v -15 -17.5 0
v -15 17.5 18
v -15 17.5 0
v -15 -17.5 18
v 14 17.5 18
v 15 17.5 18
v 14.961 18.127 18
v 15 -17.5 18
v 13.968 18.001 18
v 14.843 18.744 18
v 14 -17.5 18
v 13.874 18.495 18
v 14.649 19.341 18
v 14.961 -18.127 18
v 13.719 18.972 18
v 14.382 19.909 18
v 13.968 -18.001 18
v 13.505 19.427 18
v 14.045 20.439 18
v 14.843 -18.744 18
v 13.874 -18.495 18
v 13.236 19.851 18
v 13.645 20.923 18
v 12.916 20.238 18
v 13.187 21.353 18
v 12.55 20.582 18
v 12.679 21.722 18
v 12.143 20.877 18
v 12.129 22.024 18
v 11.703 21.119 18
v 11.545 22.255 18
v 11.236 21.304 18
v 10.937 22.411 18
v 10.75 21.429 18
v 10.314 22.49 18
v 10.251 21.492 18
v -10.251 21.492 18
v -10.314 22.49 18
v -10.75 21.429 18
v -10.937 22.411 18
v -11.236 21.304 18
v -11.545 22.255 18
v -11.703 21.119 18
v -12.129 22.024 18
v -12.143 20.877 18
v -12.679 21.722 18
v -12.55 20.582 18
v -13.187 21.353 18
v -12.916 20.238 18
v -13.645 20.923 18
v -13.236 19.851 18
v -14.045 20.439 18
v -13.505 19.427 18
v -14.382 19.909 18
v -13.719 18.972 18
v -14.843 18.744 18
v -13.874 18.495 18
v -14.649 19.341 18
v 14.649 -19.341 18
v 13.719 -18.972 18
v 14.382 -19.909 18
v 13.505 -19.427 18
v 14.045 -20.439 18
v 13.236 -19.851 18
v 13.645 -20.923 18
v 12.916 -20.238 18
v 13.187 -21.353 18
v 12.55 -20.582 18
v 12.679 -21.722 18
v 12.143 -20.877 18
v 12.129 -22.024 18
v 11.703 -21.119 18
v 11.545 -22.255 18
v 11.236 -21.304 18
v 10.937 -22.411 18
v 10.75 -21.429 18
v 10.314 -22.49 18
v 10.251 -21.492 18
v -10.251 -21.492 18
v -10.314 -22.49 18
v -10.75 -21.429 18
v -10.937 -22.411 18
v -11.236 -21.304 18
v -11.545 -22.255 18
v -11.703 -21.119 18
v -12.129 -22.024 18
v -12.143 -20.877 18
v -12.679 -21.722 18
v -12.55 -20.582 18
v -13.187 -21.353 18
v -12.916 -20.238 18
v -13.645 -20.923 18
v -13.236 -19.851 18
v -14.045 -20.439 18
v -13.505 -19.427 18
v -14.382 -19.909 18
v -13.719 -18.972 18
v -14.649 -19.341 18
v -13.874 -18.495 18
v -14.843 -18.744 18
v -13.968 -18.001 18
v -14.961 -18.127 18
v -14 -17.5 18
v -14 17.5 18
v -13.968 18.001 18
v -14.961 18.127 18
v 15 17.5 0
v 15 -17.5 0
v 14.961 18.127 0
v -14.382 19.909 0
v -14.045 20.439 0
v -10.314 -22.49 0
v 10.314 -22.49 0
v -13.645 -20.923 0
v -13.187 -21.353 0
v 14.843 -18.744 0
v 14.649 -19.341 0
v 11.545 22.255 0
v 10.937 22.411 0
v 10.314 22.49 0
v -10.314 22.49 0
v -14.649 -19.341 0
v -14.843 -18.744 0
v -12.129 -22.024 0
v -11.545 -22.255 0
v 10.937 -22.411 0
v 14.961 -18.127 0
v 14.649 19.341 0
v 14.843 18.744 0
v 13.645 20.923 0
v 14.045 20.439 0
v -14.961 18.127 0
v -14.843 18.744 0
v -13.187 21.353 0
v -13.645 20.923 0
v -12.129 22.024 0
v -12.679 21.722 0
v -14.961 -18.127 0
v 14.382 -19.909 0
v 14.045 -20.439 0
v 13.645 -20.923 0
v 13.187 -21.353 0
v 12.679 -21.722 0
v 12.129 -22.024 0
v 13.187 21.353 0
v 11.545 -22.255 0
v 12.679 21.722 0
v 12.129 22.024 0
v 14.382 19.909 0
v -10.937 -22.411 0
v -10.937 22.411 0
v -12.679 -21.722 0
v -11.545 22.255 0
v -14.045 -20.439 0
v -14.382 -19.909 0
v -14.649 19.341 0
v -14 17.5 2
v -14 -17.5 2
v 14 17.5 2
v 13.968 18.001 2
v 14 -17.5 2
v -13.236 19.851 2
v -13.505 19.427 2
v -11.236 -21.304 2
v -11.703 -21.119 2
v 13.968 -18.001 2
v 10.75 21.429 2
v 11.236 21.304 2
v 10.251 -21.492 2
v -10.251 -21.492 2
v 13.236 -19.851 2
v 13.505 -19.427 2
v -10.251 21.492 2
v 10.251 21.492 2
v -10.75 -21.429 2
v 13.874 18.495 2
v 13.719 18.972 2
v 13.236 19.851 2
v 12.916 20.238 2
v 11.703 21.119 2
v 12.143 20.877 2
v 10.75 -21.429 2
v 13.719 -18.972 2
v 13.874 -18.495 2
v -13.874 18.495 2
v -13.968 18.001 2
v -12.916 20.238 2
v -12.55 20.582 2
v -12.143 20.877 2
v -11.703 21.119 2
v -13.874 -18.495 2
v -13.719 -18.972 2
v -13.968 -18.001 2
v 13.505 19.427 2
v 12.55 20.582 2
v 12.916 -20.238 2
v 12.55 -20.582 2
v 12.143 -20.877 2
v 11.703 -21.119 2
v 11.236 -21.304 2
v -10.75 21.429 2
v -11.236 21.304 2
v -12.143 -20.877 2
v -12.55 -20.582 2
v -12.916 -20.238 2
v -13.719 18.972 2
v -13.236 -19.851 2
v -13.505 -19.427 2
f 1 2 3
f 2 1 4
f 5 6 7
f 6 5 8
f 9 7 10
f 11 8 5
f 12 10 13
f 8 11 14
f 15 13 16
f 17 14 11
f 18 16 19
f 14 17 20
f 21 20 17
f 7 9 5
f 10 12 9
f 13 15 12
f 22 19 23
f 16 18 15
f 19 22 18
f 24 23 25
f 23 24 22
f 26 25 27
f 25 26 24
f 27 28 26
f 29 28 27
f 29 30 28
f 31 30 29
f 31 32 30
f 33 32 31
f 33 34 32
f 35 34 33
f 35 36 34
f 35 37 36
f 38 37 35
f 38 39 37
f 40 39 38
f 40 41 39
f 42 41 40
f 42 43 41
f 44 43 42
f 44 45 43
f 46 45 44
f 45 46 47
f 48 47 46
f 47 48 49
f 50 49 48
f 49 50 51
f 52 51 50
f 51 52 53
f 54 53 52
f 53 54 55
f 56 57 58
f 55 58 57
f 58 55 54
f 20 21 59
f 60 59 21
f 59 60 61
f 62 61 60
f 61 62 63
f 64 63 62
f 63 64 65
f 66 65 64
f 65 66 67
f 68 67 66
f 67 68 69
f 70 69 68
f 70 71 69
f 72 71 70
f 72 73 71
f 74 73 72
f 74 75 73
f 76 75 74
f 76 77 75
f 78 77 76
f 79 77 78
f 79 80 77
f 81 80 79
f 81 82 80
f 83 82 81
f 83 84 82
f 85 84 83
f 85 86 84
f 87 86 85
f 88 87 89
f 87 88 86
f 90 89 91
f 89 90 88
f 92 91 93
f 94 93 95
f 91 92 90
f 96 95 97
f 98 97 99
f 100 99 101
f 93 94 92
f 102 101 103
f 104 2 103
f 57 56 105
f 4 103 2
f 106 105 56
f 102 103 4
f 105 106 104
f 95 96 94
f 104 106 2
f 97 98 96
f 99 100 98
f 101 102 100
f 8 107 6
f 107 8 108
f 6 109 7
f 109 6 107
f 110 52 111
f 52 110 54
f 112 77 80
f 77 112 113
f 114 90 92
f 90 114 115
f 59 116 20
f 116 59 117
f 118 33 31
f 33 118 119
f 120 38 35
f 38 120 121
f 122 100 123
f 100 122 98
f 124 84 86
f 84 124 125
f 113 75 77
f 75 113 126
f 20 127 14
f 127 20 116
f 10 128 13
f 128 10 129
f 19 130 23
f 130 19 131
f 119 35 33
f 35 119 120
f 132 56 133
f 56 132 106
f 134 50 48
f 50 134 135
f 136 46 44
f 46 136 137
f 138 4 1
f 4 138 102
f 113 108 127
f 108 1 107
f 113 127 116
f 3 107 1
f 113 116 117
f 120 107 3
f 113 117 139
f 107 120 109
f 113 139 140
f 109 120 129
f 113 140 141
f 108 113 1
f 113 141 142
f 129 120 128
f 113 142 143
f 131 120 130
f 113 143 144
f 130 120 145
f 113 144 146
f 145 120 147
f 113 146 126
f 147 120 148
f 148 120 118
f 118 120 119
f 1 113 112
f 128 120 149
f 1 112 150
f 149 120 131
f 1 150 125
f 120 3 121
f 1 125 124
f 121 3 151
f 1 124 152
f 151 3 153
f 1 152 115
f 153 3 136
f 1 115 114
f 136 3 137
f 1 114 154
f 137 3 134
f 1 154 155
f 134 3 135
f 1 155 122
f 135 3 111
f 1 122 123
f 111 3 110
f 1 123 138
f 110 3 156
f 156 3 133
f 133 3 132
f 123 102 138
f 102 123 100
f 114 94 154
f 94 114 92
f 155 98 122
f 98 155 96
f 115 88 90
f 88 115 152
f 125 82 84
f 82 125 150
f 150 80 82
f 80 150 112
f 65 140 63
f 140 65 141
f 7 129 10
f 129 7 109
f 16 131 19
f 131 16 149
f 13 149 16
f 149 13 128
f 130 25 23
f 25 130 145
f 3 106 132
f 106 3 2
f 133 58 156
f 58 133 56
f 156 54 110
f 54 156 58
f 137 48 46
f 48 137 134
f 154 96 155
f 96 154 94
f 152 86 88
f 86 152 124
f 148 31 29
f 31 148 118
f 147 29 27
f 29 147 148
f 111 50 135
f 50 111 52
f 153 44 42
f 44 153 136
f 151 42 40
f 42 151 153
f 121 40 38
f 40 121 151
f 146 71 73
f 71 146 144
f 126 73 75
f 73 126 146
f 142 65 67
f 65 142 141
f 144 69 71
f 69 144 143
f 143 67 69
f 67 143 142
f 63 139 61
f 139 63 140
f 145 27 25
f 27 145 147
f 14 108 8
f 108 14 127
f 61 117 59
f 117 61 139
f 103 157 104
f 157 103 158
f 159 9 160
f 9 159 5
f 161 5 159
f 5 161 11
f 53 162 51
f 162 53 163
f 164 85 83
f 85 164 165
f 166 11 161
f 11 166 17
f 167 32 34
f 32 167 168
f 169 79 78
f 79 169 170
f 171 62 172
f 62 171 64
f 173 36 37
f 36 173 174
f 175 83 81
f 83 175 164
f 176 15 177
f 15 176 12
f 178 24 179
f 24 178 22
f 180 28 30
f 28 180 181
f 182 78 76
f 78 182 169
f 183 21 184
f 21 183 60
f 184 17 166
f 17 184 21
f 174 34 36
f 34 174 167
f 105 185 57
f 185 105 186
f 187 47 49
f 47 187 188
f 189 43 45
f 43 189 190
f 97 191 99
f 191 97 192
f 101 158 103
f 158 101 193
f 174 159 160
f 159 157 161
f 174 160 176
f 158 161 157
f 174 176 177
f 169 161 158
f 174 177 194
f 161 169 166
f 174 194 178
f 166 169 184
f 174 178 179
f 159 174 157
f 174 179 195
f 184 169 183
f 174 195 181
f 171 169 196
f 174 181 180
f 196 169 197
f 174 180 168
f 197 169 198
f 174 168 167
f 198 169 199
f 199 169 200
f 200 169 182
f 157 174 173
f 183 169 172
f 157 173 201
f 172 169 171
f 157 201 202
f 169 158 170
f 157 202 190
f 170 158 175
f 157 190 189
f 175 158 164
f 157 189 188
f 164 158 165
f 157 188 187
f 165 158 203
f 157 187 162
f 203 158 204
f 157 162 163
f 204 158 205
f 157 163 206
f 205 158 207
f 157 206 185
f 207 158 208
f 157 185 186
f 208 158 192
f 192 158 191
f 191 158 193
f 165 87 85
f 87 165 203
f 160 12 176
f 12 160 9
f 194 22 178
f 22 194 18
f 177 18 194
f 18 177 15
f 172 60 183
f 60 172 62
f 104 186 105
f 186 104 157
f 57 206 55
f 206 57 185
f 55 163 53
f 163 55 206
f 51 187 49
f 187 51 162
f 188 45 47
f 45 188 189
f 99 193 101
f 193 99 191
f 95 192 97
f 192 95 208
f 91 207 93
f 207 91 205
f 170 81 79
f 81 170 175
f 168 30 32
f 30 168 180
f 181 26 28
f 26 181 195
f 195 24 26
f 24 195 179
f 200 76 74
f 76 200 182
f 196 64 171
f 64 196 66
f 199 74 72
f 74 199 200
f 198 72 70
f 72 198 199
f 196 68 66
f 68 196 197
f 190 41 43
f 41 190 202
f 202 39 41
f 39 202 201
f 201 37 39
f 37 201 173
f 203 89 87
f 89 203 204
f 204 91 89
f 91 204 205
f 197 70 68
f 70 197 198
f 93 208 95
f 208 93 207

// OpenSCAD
$fn = 50;


difference() {
	union() {
		hull() {
			translate(v = [-10.0000000000, 17.5000000000, 0]) {
				cylinder(h = 18, r = 5);
			}
			translate(v = [10.0000000000, 17.5000000000, 0]) {
				cylinder(h = 18, r = 5);
			}
			translate(v = [-10.0000000000, -17.5000000000, 0]) {
				cylinder(h = 18, r = 5);
			}
			translate(v = [10.0000000000, -17.5000000000, 0]) {
				cylinder(h = 18, r = 5);
			}
		}
	}
	union() {
		translate(v = [0, 0, 2]) {
			hull() {
				translate(v = [-10.0000000000, 17.5000000000, 0]) {
					cylinder(h = 16, r = 4);
				}
				translate(v = [10.0000000000, 17.5000000000, 0]) {
					cylinder(h = 16, r = 4);
				}
				translate(v = [-10.0000000000, -17.5000000000, 0]) {
					cylinder(h = 16, r = 4);
				}
				translate(v = [10.0000000000, -17.5000000000, 0]) {
					cylinder(h = 16, r = 4);
				}
			}
		}
	}
}
